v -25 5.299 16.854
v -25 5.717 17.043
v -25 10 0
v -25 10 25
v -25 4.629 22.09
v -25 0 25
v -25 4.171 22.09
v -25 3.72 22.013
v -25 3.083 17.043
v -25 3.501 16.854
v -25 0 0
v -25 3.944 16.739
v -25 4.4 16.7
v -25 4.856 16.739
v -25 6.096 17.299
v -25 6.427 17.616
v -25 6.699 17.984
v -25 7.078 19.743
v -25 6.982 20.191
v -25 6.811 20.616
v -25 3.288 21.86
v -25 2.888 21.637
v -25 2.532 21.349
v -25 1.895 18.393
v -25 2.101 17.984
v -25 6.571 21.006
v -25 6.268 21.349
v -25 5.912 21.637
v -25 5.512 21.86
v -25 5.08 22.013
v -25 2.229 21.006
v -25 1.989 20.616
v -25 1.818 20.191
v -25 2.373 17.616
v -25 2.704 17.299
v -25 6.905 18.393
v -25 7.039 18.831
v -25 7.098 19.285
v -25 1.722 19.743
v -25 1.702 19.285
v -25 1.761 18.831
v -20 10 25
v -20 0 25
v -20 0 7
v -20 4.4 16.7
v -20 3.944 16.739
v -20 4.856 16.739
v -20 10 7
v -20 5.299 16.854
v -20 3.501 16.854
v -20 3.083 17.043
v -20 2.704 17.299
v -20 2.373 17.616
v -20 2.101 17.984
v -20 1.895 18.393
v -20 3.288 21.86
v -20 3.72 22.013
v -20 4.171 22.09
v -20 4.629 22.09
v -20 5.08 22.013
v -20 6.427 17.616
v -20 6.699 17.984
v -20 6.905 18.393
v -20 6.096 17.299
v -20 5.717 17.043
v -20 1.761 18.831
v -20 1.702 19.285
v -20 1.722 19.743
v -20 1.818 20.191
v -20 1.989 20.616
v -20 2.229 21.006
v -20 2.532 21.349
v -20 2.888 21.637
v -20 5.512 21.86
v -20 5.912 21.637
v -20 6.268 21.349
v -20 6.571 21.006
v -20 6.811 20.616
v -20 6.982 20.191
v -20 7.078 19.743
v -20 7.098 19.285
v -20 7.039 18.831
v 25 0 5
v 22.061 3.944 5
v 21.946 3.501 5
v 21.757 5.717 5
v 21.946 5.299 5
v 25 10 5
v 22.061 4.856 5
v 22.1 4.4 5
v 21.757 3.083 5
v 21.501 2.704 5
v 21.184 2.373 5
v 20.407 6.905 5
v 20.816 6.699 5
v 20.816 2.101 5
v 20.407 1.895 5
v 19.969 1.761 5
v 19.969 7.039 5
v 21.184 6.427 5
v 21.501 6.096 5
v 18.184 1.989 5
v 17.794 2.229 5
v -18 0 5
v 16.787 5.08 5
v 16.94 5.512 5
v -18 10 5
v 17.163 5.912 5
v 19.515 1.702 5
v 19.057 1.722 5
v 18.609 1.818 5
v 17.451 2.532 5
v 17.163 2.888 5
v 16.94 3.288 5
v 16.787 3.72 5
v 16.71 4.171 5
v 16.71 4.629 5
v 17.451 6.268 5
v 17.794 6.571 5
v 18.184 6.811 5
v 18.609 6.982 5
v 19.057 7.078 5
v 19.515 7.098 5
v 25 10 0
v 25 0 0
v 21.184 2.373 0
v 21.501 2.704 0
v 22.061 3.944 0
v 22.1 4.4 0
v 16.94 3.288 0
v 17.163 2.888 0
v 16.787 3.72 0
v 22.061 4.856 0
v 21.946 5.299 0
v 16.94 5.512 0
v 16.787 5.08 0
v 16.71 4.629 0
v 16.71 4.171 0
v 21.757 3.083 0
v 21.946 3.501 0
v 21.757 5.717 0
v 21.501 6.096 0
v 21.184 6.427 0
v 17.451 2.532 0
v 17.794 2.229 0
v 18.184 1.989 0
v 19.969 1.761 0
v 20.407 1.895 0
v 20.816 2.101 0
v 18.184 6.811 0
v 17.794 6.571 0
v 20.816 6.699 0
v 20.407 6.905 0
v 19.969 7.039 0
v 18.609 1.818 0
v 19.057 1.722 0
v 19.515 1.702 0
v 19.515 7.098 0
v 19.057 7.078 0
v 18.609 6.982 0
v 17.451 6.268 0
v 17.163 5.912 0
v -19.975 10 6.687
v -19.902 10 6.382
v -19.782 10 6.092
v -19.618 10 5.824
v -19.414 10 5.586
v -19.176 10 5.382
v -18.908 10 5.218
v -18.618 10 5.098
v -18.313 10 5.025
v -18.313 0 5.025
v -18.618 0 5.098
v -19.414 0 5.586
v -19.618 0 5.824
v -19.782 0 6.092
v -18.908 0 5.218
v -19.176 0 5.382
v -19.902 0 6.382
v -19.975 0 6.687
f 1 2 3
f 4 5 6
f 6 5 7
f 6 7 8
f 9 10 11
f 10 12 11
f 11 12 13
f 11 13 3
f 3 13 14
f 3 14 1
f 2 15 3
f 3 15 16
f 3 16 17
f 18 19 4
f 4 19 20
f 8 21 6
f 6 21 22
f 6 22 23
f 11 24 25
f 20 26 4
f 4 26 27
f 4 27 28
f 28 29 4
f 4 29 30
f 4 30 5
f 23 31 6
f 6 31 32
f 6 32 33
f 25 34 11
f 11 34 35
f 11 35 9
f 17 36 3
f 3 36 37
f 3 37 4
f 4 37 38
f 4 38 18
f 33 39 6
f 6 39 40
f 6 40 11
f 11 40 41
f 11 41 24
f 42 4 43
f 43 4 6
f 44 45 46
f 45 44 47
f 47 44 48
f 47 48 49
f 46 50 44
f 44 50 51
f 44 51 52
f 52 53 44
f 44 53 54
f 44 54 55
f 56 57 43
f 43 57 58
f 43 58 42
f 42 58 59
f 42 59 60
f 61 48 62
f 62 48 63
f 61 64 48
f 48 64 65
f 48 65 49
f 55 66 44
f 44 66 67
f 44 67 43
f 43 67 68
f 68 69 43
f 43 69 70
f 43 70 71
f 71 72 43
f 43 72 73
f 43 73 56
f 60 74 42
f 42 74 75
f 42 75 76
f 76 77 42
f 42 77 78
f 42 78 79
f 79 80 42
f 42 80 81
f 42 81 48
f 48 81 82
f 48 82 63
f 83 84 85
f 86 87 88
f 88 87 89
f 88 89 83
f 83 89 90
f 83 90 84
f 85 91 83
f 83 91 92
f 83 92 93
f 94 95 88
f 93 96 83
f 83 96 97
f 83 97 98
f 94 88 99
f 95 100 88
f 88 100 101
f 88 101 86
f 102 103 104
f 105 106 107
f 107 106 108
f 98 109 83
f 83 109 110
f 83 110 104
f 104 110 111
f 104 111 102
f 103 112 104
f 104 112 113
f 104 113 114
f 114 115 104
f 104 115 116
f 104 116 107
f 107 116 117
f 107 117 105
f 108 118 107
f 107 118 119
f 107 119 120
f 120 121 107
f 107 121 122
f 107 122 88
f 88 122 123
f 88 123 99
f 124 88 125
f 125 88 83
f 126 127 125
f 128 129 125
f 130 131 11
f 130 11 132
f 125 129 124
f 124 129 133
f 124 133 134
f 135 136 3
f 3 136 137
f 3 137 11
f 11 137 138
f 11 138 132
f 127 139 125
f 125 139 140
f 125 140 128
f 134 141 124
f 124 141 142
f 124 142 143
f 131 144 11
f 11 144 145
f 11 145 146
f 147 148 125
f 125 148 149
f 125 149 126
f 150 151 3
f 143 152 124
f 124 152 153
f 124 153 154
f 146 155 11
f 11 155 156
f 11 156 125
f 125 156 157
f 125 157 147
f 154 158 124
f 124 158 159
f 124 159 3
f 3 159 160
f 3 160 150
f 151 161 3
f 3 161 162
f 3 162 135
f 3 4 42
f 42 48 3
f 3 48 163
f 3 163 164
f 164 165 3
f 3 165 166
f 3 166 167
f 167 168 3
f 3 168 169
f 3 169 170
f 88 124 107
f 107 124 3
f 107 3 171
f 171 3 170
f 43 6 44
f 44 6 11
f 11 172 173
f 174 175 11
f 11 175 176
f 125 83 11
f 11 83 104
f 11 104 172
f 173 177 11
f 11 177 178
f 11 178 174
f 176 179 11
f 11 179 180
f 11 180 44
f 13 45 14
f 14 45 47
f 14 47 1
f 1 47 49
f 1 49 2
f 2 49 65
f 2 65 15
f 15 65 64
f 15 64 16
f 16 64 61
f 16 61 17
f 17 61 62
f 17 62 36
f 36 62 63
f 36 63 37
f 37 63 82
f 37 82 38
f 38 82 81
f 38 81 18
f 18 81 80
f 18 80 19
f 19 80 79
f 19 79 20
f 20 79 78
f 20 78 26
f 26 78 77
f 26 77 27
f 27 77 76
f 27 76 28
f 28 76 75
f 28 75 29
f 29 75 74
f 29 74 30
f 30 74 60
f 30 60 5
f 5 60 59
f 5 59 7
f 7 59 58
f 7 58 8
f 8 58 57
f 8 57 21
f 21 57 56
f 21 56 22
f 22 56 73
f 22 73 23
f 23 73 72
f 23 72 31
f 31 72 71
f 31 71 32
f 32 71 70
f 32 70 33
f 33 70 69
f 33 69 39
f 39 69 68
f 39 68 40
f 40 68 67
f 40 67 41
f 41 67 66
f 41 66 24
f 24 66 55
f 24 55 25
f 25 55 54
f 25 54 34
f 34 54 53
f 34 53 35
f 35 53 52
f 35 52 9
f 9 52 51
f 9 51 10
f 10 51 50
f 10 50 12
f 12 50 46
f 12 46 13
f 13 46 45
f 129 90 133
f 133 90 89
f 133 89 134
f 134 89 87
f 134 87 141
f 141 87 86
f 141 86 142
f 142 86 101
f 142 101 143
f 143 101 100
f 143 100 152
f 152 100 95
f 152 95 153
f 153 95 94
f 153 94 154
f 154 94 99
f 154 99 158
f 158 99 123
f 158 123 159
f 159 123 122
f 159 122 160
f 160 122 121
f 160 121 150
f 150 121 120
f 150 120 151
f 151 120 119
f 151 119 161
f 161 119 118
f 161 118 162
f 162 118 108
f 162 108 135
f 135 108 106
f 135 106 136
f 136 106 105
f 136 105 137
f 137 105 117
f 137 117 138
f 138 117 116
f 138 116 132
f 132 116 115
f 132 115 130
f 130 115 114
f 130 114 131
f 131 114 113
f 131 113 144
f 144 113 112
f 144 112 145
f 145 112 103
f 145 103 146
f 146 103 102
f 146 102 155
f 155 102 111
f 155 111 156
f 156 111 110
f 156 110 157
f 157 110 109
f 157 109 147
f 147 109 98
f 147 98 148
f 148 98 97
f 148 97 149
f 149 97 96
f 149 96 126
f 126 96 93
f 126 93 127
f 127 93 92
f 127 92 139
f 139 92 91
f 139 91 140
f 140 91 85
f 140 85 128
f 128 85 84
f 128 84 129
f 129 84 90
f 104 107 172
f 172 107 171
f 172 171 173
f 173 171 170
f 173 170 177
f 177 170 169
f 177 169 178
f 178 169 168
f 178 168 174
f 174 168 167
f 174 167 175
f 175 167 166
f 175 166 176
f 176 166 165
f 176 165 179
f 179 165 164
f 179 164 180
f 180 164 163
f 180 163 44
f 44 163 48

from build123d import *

# Parameters (mm, degrees)
BOSS_EXTRUDE1_DEPTH = 10
SKETCH2_R           = 2.7
CUT_EXTRUDE1_DEPTH  = 53.440442409
SKETCH3_R           = 2.7
CUT_EXTRUDE2_DEPTH  = 34.541019662
FILLET1_R           = 2


with BuildPart() as part:
    # Sketch1 → Boss-Extrude1 (new body)
    with BuildSketch(Plane(origin=(0, 0, 0), x_dir=(1, 0, 0), z_dir=(0, 1, 0))):
        Polygon((-25, 0), (25, 0), (25, -5), (-20, -5), (-20, -25), (-25, -25), align=None)
    extrude(amount=BOSS_EXTRUDE1_DEPTH)

    # Sketch2 → Cut-Extrude1 (cut, through all)
    with BuildSketch(Plane(origin=(-20, 0, 0), x_dir=(0, 0, -1), z_dir=(1, 0, 0))):
        with Locations((-19.4, 4.4)):
            Circle(SKETCH2_R)
    extrude(amount=-CUT_EXTRUDE1_DEPTH, mode=Mode.SUBTRACT)

    # Sketch3 → Cut-Extrude2 (cut, through all)
    with BuildSketch(Plane.XY.offset(5)):
        with Locations((19.4, 4.4)):
            Circle(SKETCH3_R)
    extrude(amount=-CUT_EXTRUDE2_DEPTH, mode=Mode.SUBTRACT)

    # Fillet1
    fillet1_edges = [part.edges().sort_by_distance(p)[0] for p in [
        (-20, 5, 5),
    ]]
    fillet(fillet1_edges, radius=FILLET1_R)


solid = part.part
